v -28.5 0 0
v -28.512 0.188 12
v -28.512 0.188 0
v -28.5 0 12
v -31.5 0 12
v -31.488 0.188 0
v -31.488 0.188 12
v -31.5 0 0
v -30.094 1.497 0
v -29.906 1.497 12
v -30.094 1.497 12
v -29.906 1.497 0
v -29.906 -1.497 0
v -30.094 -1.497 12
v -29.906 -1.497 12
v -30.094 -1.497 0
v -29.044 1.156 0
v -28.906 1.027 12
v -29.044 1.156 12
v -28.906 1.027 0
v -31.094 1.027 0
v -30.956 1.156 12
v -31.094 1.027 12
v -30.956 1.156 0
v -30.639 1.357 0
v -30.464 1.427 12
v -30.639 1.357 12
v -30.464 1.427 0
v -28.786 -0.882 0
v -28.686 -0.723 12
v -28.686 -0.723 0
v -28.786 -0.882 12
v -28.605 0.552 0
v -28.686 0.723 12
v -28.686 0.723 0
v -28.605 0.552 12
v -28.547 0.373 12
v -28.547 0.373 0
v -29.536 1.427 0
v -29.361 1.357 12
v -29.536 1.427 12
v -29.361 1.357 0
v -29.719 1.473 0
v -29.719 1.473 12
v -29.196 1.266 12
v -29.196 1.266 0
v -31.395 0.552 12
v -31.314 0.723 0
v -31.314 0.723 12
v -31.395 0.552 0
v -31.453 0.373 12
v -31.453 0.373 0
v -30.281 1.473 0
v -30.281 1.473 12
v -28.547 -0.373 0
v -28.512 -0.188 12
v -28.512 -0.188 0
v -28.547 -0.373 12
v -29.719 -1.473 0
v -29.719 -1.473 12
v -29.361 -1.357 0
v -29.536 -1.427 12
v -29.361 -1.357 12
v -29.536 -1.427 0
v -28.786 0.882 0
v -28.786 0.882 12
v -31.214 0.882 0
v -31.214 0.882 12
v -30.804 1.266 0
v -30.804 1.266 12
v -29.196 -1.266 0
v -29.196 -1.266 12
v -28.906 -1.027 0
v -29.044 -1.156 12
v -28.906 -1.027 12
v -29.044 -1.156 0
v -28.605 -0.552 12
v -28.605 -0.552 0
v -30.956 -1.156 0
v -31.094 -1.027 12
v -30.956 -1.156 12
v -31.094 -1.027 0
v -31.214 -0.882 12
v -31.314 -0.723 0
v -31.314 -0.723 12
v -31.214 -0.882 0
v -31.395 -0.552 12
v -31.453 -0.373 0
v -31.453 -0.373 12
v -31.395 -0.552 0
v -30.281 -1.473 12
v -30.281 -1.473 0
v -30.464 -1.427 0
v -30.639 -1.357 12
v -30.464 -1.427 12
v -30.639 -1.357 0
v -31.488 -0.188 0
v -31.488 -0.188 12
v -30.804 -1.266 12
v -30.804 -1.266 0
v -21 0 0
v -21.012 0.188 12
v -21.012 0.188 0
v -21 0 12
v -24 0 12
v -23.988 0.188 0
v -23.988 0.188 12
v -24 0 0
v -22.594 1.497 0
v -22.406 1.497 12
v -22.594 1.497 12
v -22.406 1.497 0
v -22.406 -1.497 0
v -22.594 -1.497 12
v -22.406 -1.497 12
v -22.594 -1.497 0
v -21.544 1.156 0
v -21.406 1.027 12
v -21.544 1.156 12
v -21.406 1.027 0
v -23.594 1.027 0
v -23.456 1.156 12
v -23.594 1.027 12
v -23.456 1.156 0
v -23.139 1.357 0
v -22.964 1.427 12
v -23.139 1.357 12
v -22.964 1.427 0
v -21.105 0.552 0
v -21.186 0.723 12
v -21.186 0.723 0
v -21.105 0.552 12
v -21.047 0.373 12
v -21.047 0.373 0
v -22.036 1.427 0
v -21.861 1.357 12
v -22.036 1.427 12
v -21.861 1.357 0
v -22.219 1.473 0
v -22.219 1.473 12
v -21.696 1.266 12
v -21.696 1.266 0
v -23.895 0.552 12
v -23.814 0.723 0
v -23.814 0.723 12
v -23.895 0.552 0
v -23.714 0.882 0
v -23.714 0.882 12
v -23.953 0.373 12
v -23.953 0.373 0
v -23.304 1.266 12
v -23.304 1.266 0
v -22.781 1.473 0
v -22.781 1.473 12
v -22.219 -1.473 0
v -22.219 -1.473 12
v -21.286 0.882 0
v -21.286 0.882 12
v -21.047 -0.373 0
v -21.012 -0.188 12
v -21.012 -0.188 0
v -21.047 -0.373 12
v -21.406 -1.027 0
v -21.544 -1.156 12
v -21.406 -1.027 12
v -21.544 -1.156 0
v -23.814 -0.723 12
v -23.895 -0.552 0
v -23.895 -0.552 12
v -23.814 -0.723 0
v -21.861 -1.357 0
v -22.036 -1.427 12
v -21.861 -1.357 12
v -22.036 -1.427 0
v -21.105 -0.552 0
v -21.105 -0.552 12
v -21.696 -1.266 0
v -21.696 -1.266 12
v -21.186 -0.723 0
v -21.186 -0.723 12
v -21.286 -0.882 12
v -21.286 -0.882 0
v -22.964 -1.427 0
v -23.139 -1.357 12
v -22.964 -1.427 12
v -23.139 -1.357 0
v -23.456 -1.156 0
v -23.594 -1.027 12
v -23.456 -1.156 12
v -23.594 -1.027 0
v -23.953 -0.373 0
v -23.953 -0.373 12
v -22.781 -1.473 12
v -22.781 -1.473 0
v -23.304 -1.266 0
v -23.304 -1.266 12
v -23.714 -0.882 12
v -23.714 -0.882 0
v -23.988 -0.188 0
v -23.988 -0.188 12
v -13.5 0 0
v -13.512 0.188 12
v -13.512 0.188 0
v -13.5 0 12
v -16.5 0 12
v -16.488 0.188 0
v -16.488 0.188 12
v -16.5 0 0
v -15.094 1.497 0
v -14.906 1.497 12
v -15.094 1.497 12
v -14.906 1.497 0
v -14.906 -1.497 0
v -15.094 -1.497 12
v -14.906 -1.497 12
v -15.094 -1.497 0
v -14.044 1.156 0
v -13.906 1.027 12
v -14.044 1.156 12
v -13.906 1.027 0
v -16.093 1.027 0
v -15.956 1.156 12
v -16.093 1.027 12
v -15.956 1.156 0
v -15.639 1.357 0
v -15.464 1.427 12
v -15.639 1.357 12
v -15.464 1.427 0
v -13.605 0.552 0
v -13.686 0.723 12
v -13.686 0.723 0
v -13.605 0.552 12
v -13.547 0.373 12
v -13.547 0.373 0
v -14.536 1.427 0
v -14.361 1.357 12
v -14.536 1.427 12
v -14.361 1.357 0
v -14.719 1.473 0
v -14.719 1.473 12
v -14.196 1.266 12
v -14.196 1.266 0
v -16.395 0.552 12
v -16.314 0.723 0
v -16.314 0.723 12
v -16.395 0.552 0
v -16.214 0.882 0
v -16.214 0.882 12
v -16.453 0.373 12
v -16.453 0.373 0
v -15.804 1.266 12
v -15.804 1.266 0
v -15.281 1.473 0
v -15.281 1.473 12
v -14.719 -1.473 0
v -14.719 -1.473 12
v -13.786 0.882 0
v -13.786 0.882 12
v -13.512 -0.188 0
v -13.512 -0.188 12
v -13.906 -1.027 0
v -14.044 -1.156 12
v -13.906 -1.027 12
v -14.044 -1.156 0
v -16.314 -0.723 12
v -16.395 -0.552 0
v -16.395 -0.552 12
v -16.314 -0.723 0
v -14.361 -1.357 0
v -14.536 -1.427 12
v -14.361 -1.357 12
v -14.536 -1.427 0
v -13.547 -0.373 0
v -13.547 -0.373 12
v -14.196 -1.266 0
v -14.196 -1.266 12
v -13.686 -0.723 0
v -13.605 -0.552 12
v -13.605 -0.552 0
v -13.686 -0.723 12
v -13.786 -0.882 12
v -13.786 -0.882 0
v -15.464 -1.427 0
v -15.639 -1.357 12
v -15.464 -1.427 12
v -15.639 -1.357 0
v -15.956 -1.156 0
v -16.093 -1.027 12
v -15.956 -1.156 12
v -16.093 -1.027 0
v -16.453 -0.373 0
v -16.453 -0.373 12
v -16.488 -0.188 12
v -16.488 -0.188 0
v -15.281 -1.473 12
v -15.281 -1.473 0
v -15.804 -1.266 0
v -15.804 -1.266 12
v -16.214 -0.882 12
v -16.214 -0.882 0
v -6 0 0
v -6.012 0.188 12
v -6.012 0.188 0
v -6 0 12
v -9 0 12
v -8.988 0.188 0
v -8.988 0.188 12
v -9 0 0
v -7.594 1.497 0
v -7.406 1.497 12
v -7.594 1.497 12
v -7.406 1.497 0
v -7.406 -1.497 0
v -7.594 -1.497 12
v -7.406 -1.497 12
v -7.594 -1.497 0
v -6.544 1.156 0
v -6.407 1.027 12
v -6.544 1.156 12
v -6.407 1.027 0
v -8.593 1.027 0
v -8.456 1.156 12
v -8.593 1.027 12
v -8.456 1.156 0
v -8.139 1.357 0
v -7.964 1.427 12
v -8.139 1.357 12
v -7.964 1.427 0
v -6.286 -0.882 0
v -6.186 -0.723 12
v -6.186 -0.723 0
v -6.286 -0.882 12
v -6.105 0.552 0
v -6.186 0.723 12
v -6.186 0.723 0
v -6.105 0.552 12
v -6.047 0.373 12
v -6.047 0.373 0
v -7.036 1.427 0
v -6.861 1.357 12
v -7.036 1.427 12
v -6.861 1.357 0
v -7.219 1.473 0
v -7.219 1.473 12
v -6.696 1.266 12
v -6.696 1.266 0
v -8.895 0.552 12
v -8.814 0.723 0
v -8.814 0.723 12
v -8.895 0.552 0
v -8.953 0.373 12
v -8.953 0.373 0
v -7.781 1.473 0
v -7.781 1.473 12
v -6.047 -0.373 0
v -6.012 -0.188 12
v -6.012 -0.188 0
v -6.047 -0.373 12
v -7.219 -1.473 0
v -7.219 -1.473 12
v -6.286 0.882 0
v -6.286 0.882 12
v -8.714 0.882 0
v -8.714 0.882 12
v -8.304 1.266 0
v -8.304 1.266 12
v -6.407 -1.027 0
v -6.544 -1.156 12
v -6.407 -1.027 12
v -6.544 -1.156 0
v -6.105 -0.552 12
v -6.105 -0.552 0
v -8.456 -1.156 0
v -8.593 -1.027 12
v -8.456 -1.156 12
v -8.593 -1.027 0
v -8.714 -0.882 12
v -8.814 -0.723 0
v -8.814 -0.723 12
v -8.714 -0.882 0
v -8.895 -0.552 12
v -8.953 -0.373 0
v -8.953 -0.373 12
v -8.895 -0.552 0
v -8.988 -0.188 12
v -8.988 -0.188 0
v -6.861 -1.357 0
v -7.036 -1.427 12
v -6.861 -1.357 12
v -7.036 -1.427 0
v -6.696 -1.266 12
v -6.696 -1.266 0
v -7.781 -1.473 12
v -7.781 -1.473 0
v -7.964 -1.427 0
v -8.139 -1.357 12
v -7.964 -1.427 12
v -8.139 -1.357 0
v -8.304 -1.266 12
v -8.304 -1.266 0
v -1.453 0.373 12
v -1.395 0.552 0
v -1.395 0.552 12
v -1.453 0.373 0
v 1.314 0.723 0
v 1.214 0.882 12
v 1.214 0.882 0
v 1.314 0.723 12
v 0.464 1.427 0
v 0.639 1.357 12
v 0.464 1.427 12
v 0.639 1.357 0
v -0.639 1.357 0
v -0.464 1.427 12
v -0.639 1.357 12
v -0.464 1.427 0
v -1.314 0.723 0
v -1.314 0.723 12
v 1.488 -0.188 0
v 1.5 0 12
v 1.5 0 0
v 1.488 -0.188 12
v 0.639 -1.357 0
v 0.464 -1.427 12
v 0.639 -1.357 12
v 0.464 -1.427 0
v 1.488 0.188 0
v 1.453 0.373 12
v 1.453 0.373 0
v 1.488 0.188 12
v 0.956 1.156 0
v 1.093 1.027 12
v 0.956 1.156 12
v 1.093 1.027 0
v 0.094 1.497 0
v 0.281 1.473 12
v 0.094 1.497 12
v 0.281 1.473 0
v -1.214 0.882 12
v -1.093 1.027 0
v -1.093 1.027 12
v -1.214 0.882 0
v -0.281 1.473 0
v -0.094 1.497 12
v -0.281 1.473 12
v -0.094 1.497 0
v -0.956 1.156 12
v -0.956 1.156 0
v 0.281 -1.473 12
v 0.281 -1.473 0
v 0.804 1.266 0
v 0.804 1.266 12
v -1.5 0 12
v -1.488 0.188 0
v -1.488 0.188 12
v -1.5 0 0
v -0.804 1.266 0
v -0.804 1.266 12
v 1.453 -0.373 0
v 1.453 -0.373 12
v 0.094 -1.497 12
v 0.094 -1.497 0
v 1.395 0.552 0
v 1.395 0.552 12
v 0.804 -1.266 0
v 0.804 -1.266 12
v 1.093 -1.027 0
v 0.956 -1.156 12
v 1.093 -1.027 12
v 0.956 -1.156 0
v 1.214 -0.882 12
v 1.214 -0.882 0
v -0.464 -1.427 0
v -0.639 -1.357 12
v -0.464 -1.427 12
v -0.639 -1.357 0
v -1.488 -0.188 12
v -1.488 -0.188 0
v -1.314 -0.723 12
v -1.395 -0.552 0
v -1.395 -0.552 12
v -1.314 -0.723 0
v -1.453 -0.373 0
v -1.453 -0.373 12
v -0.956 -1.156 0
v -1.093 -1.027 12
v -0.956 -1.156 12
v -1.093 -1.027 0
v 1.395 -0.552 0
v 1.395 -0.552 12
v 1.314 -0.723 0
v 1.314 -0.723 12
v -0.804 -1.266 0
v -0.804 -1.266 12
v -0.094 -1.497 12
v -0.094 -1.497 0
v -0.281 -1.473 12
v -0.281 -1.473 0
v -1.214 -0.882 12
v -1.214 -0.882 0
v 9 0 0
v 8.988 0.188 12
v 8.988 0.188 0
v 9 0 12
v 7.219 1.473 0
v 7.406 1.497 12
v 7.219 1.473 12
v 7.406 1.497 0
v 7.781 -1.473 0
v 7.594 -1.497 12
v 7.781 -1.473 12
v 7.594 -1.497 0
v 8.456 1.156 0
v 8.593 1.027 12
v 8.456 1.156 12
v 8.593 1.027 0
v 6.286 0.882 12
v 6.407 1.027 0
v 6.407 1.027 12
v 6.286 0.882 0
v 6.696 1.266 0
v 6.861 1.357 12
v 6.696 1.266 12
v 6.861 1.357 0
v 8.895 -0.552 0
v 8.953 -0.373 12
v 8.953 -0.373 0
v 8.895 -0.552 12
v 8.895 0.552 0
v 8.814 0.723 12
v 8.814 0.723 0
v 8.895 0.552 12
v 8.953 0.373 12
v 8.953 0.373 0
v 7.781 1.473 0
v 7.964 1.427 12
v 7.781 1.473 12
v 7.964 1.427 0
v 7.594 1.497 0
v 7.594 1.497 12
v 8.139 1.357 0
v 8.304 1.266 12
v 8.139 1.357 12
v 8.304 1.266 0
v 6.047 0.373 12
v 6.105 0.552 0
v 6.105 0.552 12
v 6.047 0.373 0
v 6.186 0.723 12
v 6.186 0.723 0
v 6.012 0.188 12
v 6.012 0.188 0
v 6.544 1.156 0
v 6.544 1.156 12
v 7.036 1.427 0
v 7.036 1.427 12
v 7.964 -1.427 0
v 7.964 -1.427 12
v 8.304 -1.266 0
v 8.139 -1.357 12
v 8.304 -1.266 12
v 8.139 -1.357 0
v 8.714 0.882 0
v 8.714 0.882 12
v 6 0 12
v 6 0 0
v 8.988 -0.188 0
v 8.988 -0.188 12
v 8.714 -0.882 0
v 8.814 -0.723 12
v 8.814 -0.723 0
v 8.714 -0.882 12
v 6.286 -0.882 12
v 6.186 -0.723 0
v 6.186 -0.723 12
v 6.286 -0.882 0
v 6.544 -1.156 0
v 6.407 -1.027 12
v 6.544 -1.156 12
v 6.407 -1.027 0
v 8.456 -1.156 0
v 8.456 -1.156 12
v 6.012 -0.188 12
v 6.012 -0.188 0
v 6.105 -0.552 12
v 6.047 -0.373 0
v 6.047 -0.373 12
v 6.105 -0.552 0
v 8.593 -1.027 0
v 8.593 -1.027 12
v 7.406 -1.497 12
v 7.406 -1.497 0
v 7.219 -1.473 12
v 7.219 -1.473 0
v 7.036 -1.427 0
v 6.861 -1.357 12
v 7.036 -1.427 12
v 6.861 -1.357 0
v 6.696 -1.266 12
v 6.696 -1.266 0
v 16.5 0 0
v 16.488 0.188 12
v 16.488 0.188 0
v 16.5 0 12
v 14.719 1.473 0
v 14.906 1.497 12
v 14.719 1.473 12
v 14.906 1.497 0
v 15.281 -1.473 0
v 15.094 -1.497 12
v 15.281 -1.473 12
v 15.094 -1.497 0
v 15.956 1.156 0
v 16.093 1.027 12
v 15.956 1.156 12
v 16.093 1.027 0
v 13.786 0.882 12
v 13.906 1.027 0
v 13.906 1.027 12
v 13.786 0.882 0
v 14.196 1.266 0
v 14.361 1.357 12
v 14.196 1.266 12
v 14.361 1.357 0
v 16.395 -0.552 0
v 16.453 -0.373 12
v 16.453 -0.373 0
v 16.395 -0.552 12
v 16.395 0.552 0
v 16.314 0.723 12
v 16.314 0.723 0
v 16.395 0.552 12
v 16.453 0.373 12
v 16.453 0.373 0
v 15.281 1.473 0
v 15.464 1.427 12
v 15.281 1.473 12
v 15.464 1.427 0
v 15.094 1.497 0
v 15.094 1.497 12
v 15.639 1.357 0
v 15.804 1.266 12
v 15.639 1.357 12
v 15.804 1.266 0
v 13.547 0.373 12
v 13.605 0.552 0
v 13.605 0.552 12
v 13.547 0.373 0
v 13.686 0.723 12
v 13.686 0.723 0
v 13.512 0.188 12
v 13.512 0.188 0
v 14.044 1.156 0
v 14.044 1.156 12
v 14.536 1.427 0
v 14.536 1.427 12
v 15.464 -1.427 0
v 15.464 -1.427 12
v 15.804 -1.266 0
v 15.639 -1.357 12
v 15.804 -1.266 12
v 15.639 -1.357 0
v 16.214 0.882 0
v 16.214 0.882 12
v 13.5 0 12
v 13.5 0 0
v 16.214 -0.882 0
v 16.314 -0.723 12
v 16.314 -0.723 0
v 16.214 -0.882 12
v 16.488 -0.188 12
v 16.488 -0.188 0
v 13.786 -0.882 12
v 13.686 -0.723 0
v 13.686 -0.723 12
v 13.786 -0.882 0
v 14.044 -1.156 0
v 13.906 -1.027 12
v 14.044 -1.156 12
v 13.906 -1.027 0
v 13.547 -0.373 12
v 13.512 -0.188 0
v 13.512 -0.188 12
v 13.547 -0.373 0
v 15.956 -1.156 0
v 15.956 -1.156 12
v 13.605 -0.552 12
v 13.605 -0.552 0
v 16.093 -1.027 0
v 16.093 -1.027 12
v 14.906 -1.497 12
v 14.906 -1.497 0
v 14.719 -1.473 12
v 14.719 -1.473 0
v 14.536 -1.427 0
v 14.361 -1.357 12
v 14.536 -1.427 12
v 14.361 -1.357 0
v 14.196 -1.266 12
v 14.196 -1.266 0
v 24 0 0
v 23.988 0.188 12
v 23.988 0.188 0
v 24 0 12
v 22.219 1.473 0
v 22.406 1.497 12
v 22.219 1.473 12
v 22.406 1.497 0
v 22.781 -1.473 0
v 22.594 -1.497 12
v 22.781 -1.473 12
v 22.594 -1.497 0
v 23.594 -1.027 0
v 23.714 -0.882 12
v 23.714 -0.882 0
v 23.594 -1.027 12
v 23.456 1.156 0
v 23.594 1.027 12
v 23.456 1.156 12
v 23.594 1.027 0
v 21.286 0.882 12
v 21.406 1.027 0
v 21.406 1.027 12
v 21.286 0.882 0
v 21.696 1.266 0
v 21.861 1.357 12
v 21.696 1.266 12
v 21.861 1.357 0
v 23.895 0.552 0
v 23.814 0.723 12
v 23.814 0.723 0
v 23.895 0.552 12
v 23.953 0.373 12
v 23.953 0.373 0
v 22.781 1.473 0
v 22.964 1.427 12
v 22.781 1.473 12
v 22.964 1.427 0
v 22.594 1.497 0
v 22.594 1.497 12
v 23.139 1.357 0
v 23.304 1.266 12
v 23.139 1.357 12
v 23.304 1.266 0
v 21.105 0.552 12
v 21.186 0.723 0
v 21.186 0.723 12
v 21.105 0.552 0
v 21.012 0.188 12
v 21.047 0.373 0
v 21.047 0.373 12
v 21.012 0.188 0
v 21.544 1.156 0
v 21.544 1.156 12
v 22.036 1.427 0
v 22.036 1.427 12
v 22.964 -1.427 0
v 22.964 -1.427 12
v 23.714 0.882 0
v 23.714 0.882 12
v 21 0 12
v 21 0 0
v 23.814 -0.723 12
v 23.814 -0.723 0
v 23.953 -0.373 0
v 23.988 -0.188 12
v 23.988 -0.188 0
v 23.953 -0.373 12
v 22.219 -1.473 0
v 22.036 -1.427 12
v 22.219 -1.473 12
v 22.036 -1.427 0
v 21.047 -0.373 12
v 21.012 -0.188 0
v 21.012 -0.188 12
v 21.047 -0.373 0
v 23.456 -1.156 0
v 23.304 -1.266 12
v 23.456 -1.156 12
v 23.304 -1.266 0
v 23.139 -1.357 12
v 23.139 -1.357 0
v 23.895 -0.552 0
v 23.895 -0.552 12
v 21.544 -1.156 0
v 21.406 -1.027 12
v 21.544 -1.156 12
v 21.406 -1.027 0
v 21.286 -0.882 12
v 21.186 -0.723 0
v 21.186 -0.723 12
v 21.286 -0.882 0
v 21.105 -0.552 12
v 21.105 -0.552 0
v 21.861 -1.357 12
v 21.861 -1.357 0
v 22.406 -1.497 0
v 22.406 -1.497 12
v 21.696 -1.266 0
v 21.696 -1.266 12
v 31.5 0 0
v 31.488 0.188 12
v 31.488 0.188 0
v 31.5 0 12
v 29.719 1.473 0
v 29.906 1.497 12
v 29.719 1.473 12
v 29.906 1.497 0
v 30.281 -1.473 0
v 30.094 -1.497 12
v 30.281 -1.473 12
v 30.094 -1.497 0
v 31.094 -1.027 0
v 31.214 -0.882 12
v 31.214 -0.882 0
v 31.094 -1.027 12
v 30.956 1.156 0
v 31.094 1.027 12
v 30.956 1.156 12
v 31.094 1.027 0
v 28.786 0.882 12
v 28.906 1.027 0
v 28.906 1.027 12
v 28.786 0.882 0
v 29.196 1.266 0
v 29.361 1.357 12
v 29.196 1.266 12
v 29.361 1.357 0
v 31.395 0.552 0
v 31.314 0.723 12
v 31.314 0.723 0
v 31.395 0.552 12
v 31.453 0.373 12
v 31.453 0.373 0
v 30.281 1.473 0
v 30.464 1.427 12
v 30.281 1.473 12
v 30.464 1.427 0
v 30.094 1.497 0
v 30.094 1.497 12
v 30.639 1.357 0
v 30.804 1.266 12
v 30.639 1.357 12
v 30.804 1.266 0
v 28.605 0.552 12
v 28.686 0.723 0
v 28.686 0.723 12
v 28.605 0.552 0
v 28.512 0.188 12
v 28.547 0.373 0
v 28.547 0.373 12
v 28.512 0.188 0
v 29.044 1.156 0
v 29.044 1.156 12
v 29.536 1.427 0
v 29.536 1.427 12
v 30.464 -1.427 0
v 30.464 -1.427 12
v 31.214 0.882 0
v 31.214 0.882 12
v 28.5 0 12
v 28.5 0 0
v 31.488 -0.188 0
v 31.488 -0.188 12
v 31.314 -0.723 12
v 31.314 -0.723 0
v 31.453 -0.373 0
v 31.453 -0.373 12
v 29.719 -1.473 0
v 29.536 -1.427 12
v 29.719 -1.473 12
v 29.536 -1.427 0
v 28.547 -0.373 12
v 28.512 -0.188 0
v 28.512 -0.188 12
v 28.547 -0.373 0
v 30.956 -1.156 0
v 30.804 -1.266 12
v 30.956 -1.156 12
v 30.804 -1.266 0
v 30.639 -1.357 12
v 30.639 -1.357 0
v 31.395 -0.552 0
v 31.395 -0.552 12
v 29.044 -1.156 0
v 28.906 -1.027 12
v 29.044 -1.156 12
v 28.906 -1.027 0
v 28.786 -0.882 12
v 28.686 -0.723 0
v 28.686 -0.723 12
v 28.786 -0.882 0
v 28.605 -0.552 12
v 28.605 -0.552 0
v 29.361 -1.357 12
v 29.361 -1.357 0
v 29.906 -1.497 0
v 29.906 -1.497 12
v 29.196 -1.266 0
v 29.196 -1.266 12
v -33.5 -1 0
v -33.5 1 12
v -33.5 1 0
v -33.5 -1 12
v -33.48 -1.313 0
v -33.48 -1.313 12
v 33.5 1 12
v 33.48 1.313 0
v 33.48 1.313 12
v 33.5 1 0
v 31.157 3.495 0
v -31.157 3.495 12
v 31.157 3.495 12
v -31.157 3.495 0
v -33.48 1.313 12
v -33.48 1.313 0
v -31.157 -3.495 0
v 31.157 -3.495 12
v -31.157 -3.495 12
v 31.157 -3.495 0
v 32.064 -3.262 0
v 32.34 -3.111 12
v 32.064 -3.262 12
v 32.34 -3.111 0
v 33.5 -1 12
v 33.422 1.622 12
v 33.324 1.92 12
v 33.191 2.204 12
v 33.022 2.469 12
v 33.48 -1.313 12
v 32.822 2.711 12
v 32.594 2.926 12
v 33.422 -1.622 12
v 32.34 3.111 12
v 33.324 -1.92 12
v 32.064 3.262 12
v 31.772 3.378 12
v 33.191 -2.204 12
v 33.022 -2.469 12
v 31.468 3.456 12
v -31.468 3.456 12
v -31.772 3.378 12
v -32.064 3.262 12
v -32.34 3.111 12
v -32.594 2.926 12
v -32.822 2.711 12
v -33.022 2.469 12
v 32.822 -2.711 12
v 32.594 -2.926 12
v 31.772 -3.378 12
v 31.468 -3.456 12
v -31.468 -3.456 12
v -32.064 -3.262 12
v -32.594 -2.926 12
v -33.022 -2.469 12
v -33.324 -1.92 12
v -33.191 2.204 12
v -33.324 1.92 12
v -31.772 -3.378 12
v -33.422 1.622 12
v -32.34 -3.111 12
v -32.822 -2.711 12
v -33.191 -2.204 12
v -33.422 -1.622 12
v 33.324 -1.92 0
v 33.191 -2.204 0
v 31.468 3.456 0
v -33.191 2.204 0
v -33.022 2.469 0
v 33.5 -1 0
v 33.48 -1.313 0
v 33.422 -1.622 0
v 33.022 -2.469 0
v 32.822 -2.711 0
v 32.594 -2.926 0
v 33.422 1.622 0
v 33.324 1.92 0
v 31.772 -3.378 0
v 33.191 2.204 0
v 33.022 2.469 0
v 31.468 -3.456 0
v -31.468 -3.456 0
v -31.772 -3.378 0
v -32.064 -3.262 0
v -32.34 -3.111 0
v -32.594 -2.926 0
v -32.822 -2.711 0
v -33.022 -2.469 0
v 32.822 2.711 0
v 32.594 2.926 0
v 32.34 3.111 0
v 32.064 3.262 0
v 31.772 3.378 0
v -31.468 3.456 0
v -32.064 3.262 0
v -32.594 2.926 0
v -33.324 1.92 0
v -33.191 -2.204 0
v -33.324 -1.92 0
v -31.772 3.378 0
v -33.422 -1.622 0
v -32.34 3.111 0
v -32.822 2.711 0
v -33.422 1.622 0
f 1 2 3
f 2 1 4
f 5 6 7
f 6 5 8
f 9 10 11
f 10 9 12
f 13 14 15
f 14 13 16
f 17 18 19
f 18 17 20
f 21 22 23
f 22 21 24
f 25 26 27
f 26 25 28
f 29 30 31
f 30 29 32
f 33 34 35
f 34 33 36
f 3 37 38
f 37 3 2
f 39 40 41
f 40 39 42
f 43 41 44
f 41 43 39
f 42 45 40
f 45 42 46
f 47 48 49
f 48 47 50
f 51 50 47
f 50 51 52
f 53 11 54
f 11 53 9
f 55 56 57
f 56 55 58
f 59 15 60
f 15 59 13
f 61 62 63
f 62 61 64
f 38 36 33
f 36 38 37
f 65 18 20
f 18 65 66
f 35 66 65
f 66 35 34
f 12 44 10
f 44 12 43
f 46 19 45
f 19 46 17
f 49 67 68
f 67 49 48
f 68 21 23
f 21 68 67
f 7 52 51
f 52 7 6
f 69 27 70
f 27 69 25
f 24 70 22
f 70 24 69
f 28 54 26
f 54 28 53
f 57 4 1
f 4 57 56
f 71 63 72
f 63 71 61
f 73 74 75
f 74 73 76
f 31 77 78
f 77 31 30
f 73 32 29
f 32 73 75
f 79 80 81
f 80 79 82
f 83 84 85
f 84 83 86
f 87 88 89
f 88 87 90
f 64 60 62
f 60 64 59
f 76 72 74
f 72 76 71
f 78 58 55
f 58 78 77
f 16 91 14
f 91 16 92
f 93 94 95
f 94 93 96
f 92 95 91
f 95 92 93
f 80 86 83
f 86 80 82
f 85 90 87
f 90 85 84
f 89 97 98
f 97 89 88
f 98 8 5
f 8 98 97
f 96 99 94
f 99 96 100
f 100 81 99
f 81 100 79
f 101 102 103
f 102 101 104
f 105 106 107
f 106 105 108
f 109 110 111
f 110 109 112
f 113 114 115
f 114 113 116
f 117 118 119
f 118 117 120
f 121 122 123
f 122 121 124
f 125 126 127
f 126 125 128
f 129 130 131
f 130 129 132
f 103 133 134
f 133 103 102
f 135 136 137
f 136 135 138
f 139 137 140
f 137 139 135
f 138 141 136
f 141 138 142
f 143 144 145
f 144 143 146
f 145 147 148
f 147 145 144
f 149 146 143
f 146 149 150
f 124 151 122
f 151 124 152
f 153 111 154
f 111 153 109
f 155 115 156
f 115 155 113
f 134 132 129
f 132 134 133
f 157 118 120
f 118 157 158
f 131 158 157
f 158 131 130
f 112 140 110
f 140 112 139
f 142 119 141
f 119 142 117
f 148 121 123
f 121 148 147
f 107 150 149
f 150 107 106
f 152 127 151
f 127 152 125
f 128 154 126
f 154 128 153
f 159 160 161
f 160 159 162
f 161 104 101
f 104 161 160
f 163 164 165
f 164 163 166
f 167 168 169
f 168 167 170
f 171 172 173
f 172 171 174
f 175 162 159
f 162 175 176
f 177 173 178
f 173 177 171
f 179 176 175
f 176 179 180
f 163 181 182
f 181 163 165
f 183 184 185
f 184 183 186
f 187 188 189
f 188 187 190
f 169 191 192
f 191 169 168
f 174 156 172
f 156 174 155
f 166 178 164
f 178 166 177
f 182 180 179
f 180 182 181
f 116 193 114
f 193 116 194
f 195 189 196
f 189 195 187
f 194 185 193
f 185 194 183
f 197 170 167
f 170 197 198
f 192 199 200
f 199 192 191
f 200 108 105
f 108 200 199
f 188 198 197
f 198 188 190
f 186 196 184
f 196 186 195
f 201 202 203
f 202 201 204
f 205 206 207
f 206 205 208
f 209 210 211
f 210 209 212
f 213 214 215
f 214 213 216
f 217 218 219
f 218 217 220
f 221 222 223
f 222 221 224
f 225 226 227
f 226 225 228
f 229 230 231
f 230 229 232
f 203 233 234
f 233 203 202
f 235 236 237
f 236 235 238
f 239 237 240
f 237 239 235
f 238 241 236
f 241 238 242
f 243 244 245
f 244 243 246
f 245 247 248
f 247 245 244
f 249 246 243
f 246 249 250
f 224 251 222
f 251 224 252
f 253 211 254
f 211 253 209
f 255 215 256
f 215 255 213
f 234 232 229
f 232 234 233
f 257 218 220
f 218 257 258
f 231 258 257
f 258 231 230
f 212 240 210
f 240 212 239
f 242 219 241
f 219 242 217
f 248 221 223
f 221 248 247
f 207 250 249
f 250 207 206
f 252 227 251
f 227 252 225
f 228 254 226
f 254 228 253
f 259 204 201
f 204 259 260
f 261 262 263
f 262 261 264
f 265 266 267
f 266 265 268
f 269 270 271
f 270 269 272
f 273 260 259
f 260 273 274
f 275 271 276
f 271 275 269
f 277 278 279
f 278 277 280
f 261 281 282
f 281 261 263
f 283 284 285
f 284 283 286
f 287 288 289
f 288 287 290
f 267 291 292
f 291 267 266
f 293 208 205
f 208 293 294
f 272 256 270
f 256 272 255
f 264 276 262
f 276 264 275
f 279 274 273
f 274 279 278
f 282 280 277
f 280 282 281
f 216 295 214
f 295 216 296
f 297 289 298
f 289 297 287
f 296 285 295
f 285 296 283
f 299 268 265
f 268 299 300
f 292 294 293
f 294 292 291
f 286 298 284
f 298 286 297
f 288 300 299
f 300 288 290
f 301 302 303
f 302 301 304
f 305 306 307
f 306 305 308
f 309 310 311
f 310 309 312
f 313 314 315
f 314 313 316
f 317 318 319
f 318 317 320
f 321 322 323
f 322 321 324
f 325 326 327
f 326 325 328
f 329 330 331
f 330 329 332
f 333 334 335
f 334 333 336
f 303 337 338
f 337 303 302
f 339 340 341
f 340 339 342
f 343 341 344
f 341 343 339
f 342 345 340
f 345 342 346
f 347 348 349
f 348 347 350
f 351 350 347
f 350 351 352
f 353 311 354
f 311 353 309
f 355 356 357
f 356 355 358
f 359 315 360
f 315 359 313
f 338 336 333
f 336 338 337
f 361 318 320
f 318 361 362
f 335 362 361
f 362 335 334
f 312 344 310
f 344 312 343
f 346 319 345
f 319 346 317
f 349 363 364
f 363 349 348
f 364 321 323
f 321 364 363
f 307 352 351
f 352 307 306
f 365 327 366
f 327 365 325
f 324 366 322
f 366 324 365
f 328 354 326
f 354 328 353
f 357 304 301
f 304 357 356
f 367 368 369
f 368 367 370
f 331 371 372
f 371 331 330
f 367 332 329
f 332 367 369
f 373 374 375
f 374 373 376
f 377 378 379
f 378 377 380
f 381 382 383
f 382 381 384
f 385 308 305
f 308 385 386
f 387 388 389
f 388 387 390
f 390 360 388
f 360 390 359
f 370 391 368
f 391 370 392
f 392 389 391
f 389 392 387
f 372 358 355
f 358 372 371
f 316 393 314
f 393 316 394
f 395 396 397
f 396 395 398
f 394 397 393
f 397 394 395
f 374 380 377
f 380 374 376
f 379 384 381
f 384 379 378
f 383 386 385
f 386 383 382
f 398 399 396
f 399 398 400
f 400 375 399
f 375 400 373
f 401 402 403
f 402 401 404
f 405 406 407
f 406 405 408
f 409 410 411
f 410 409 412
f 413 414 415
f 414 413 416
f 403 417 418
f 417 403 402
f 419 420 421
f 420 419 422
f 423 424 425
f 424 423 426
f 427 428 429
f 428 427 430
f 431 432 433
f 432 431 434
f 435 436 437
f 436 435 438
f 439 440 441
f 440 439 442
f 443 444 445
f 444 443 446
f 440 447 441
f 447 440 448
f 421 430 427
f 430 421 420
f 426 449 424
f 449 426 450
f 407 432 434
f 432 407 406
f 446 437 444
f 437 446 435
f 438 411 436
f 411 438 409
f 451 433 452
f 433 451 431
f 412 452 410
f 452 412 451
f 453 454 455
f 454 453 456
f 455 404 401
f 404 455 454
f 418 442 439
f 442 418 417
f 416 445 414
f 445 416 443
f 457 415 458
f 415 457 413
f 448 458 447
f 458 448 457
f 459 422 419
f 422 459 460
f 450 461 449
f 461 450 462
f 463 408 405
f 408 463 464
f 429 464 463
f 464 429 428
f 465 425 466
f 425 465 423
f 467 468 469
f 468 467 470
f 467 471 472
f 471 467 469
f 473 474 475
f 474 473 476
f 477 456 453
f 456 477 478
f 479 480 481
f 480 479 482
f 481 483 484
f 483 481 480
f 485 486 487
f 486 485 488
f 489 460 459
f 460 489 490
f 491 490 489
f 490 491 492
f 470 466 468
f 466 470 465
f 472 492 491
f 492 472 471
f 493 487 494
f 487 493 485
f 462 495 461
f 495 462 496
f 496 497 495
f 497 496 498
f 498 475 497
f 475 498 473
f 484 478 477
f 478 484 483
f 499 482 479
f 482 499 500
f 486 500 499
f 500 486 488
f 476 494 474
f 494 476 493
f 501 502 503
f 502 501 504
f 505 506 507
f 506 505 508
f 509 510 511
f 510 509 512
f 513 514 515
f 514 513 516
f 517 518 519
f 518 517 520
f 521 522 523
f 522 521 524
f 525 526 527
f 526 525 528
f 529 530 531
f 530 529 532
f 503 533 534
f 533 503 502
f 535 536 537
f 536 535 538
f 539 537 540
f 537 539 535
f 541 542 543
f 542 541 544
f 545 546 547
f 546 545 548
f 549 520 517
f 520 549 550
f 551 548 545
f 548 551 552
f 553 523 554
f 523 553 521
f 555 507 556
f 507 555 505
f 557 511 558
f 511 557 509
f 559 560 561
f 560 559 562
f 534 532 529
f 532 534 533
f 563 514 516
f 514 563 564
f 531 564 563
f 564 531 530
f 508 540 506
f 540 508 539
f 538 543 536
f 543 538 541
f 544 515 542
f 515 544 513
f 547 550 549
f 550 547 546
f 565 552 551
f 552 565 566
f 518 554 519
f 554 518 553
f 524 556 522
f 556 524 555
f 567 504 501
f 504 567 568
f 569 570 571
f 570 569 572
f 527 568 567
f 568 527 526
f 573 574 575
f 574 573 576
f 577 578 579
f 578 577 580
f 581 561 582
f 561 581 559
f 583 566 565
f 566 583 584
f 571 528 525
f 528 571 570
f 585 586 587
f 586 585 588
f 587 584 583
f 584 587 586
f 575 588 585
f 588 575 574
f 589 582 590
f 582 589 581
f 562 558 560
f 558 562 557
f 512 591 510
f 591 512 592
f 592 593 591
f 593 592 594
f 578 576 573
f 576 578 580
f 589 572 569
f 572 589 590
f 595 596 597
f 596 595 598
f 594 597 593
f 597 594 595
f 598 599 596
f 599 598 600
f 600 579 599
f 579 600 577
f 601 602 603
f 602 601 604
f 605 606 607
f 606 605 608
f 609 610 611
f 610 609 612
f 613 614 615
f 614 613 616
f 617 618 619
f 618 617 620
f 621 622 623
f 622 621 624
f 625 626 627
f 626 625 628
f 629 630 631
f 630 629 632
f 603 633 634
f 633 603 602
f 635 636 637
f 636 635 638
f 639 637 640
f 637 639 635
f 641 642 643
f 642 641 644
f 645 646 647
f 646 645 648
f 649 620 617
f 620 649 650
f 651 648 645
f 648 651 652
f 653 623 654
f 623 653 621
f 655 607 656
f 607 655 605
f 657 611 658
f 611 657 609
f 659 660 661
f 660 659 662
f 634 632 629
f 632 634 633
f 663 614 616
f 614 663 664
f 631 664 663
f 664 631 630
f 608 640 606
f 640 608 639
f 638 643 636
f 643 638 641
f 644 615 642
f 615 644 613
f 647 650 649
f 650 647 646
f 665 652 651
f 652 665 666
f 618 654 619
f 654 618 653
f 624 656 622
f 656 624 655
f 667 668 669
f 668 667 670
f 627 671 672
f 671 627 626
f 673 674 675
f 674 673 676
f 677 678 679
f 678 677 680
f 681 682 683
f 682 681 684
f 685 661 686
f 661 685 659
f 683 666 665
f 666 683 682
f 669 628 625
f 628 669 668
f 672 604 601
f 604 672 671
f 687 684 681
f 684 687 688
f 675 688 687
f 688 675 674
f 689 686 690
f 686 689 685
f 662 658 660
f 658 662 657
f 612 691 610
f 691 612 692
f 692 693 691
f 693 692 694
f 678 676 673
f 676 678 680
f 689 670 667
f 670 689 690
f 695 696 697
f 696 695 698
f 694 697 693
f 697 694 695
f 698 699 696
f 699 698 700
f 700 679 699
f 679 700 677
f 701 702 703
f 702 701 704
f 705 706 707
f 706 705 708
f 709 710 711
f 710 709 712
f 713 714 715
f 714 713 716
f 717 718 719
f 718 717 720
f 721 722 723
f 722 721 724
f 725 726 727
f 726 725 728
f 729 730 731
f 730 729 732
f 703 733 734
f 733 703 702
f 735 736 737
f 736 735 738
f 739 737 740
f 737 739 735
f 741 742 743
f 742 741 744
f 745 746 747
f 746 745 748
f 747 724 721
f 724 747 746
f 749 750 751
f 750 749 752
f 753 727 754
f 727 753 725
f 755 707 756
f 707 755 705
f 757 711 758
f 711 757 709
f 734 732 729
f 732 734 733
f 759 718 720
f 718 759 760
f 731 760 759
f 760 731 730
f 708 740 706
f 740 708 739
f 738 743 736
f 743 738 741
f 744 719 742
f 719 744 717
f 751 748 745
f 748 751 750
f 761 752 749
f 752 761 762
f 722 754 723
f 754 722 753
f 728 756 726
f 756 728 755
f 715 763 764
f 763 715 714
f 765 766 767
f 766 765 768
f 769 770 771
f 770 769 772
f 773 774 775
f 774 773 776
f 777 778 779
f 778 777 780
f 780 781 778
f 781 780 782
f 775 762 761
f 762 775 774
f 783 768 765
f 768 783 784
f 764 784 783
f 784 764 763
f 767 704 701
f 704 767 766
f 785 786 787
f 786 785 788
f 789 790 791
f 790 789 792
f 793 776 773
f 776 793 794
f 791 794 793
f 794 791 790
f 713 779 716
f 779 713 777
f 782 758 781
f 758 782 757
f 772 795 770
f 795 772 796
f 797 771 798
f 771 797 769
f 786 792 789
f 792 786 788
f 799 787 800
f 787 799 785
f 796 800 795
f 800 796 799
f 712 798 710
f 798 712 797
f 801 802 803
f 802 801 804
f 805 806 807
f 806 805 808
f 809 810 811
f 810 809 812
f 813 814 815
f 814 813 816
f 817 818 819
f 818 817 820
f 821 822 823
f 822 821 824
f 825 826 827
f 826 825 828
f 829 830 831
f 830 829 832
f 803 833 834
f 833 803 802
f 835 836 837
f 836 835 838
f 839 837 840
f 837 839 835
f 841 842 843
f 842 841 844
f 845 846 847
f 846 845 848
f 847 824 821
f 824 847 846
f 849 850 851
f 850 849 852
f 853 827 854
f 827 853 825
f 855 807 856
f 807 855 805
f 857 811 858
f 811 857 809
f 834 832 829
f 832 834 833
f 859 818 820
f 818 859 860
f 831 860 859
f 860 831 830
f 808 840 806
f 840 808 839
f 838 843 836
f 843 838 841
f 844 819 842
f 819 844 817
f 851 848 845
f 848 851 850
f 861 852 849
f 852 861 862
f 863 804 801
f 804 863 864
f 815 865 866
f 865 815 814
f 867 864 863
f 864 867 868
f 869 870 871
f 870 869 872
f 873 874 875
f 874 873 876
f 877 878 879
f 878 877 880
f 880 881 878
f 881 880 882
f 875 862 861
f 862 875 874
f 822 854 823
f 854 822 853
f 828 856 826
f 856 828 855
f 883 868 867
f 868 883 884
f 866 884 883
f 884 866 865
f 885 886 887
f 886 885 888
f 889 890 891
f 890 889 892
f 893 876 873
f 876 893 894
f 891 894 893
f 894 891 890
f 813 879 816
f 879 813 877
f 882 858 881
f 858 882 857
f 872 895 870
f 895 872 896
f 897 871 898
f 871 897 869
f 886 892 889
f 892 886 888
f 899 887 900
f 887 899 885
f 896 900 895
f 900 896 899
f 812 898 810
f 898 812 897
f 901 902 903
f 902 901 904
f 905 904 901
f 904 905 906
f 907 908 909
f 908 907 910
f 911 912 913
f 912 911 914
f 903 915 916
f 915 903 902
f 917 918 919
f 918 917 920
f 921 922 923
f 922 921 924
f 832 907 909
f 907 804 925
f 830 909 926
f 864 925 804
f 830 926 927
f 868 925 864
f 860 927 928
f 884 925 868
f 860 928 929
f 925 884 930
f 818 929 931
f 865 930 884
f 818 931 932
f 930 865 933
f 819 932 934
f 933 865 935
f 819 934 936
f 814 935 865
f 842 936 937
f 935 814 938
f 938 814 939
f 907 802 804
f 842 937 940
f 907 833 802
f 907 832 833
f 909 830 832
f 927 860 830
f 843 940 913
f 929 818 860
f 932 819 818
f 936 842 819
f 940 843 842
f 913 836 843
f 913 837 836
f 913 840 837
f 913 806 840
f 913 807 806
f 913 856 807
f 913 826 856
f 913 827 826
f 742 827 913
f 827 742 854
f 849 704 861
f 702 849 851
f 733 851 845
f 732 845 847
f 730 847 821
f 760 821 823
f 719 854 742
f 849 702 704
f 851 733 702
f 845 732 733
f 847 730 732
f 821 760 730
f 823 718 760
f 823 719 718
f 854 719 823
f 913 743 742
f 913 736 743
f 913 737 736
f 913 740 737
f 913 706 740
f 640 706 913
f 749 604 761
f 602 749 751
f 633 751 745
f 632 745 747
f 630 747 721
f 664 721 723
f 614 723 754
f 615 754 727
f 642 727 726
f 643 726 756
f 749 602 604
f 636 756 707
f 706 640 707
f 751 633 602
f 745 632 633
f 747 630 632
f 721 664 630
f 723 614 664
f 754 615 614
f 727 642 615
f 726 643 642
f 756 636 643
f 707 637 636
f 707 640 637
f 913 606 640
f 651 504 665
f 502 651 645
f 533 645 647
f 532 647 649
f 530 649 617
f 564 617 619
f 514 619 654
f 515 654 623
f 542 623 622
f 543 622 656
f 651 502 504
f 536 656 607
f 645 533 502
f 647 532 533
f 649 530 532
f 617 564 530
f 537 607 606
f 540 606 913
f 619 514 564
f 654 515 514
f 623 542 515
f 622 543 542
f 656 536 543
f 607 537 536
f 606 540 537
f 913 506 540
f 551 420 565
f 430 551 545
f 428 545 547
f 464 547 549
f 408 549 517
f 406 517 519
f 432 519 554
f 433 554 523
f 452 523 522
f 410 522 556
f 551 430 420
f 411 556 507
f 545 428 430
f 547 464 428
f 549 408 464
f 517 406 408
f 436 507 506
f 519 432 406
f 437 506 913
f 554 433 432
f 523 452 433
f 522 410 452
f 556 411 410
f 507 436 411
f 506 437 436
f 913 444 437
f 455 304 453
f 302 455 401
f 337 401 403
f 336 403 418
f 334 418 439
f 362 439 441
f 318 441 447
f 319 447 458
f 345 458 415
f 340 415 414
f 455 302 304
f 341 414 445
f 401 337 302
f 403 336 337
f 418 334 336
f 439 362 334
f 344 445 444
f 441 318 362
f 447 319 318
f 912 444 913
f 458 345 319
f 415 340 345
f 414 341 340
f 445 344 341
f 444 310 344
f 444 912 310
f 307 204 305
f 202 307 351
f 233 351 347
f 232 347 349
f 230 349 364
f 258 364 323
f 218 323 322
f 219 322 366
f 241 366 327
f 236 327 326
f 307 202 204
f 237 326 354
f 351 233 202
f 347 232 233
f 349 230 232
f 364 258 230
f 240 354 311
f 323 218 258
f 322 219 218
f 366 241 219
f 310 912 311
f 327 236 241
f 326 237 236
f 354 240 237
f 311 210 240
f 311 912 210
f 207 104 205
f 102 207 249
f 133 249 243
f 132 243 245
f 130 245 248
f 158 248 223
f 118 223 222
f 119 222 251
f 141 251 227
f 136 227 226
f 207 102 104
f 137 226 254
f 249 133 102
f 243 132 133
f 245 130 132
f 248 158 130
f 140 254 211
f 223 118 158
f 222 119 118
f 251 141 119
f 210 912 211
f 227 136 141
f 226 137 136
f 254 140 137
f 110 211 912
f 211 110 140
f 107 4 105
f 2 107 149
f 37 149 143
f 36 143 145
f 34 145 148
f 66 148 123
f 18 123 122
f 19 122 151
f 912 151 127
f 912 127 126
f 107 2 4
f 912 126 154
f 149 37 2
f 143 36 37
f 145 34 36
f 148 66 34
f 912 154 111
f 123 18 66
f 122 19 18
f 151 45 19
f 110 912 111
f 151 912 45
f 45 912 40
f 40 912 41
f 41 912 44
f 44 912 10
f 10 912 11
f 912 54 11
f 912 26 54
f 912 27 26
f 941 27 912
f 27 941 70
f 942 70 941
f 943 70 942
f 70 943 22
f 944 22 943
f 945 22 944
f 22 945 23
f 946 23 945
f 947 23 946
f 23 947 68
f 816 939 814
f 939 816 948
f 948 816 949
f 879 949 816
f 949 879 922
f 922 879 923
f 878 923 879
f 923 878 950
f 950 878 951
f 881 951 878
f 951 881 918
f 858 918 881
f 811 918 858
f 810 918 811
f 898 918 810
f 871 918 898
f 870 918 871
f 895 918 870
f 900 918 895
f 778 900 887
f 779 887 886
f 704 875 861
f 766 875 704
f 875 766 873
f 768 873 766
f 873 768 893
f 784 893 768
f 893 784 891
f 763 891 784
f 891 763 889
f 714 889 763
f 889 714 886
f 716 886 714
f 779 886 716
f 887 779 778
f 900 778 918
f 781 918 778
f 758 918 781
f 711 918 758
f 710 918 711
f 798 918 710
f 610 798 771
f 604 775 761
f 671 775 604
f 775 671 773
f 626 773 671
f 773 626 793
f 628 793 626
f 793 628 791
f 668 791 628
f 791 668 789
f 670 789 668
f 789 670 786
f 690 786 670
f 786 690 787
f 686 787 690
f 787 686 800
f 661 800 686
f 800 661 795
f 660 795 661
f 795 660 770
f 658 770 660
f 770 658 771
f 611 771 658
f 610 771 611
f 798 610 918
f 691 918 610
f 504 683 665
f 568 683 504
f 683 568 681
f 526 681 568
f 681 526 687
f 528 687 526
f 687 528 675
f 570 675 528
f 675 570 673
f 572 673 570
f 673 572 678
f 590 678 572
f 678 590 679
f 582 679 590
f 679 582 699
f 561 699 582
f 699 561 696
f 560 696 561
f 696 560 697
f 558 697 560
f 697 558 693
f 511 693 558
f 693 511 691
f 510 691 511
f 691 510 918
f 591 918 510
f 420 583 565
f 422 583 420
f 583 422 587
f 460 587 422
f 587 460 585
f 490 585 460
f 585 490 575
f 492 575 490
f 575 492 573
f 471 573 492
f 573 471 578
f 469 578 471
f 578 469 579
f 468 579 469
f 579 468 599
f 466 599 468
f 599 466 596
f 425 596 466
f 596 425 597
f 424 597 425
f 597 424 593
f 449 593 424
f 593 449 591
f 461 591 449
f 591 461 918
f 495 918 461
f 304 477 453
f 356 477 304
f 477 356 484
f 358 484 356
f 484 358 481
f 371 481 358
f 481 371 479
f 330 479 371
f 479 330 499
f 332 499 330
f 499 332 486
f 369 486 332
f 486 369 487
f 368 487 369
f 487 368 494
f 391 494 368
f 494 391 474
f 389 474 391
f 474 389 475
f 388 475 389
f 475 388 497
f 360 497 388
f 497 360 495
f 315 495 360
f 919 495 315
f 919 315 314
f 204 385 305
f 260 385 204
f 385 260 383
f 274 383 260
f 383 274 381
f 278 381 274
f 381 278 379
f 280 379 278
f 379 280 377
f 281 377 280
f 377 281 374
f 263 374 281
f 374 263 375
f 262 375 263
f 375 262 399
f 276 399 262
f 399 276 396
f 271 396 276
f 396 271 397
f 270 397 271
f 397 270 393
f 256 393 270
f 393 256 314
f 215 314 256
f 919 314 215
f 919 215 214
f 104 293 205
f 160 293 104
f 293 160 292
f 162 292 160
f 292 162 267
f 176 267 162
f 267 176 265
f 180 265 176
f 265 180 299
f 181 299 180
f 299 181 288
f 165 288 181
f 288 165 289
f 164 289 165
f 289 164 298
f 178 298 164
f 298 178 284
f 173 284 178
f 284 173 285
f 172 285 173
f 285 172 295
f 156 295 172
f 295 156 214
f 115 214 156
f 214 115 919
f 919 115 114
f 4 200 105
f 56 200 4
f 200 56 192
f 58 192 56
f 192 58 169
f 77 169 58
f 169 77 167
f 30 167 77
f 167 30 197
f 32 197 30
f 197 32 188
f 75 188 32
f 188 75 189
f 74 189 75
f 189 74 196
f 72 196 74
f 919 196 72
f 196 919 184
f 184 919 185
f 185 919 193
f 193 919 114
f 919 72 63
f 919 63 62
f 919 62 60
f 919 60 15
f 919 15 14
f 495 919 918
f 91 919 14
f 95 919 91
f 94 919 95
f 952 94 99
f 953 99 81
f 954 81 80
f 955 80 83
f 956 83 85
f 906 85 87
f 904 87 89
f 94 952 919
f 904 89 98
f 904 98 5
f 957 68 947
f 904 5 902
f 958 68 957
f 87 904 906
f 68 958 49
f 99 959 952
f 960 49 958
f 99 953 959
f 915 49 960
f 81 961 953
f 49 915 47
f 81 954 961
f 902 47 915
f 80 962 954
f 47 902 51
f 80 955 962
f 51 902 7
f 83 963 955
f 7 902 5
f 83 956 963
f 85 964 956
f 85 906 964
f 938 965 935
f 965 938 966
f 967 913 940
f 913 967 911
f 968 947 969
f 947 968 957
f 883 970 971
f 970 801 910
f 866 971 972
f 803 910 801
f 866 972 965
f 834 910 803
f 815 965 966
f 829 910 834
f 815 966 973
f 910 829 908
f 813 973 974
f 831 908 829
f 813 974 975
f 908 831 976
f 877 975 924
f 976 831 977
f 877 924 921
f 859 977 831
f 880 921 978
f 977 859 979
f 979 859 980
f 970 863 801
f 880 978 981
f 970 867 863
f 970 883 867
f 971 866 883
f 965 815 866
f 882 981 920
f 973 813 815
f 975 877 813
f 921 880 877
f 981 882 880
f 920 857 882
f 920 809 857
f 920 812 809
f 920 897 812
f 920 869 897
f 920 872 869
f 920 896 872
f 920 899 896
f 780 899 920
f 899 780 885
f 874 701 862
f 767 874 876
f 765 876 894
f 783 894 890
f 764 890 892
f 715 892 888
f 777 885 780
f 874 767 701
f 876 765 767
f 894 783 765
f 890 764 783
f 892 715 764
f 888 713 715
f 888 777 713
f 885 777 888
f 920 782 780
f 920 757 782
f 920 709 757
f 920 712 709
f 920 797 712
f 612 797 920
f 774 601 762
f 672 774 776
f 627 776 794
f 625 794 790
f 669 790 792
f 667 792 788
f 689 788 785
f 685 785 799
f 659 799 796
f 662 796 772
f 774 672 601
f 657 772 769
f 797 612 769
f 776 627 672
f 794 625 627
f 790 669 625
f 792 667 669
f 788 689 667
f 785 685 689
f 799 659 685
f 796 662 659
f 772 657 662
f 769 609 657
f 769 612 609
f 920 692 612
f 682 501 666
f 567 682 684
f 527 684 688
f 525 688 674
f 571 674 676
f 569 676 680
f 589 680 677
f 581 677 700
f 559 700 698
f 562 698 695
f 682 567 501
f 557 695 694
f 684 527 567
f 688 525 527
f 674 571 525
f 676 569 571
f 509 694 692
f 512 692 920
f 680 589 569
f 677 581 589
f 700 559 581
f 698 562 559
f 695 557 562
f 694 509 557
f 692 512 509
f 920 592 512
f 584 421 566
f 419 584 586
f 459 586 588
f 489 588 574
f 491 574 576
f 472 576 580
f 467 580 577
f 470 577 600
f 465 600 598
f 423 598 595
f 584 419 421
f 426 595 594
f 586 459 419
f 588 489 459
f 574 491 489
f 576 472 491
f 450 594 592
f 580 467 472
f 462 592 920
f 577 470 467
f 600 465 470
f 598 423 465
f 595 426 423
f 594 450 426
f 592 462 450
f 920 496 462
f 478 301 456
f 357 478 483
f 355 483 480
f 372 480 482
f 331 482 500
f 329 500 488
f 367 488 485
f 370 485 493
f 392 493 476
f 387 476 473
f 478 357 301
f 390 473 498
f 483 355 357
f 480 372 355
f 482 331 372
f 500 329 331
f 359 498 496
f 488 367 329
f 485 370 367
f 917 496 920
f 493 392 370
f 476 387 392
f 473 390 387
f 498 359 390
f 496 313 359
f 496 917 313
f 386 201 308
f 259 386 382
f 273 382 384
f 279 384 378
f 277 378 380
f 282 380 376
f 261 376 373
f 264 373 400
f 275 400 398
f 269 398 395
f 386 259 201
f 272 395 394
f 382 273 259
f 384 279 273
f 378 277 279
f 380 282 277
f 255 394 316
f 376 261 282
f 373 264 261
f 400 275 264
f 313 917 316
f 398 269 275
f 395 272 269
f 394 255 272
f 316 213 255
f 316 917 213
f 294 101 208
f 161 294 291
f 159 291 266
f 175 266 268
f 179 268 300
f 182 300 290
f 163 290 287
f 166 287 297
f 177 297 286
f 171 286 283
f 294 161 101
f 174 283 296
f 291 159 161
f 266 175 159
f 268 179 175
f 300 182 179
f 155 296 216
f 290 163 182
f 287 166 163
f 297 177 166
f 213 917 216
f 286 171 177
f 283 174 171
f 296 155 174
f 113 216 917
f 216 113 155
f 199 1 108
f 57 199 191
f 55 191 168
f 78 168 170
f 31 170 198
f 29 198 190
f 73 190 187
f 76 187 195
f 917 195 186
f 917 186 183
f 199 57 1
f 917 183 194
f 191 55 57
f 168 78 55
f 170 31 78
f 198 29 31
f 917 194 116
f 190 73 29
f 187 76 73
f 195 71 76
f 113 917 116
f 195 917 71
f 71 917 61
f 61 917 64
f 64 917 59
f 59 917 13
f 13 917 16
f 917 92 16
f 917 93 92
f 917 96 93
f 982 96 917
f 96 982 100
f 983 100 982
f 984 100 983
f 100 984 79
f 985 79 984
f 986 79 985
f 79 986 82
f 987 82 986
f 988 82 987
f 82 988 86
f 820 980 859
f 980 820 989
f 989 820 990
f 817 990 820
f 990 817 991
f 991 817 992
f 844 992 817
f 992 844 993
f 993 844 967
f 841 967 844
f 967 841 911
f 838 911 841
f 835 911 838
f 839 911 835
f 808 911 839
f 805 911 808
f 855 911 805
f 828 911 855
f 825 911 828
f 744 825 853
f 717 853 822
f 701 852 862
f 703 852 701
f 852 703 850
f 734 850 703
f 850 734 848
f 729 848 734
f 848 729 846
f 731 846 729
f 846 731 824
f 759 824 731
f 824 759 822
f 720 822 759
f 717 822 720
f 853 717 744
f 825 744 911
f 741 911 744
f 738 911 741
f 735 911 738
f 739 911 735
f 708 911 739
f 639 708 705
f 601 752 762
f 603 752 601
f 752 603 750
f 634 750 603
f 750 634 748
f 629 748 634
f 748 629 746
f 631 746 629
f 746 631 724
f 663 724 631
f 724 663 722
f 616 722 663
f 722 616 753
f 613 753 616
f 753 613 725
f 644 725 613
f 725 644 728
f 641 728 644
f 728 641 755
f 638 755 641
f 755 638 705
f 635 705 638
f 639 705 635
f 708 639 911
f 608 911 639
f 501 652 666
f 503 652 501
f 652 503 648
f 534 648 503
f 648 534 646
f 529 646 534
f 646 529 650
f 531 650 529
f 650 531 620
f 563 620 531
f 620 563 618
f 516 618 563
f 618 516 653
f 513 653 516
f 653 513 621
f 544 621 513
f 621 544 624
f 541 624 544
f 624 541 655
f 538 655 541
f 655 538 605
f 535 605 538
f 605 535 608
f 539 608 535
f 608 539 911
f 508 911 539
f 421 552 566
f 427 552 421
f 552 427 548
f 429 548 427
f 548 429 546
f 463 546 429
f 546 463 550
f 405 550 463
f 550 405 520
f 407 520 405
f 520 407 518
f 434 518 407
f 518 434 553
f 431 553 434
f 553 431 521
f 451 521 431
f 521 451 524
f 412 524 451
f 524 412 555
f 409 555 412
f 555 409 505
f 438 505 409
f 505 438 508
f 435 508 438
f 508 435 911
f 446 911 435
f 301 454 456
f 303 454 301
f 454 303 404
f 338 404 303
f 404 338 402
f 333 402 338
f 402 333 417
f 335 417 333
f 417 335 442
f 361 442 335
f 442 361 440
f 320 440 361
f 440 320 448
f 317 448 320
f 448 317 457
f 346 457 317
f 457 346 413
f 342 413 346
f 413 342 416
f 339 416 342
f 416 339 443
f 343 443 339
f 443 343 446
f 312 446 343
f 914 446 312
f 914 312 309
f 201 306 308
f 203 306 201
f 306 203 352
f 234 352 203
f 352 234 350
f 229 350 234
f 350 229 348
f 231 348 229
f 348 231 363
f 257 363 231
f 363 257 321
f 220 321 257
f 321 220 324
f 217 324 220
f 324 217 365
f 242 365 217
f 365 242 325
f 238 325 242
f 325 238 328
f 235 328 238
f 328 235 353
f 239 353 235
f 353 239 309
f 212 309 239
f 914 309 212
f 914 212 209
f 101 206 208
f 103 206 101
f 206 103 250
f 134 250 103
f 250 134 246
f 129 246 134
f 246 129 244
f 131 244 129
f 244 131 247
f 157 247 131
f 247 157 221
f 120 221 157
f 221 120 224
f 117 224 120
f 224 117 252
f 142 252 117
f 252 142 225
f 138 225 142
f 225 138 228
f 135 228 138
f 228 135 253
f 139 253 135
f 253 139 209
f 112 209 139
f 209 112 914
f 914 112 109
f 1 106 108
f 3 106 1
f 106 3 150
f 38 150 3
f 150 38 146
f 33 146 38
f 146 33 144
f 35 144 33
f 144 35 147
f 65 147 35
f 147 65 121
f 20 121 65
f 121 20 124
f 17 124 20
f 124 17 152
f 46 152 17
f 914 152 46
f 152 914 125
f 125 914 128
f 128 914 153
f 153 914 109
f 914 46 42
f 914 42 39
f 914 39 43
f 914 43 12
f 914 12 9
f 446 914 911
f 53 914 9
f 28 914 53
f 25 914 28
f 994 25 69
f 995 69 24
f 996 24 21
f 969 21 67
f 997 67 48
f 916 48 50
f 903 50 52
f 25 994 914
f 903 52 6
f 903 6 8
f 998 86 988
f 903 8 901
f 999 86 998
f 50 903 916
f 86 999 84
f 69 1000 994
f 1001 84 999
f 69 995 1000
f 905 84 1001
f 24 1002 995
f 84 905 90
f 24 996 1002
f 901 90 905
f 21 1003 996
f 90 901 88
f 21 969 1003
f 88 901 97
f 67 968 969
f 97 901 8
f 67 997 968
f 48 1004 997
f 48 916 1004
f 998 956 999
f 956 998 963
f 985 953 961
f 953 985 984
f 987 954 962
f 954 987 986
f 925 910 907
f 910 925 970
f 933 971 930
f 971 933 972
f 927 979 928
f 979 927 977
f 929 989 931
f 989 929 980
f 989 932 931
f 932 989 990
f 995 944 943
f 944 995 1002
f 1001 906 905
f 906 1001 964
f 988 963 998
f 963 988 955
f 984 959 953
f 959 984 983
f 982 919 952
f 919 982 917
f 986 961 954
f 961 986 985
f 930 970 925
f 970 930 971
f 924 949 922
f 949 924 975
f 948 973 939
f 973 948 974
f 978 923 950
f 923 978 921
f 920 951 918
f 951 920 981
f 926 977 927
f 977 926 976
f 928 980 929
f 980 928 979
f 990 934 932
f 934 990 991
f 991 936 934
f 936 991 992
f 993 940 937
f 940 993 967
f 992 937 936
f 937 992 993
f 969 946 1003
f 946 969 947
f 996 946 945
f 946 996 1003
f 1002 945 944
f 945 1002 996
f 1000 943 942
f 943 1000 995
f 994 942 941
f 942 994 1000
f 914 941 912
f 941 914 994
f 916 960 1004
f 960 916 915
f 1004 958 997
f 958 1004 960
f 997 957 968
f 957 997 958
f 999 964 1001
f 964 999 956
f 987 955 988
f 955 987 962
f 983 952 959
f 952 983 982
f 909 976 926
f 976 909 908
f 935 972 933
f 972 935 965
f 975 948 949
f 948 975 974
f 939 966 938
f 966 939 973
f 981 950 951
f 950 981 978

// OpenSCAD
$fn = 50;


difference() {
	union() {
		translate(v = [0, 0, 0]) {
			rotate(a = [0, 0, 0]) {
				hull() {
					translate(v = [-31.0000000000, 1.0000000000, 0]) {
						rotate(a = [0, 0, 0]) {
							translate(v = [0, 0, 0]) {
								rotate(a = [0, 0, 0]) {
									cylinder(h = 12, r = 2.5000000000);
								}
							}
						}
					}
					translate(v = [31.0000000000, 1.0000000000, 0]) {
						rotate(a = [0, 0, 0]) {
							translate(v = [0, 0, 0]) {
								rotate(a = [0, 0, 0]) {
									cylinder(h = 12, r = 2.5000000000);
								}
							}
						}
					}
					translate(v = [-31.0000000000, -1.0000000000, 0]) {
						rotate(a = [0, 0, 0]) {
							translate(v = [0, 0, 0]) {
								rotate(a = [0, 0, 0]) {
									cylinder(h = 12, r = 2.5000000000);
								}
							}
						}
					}
					translate(v = [31.0000000000, -1.0000000000, 0]) {
						rotate(a = [0, 0, 0]) {
							translate(v = [0, 0, 0]) {
								rotate(a = [0, 0, 0]) {
									cylinder(h = 12, r = 2.5000000000);
								}
							}
						}
					}
				}
			}
		}
	}
	union() {
		translate(v = [-30.0000000000, 0.0000000000, 0]) {
			rotate(a = [0, 0, 0]) {
				translate(v = [0, 0, -50]) {
					rotate(a = [0, 0, 0]) {
						cylinder(h = 100, r = 1.5000000000);
					}
				}
			}
		}
		translate(v = [-22.5000000000, 0.0000000000, 0]) {
			rotate(a = [0, 0, 0]) {
				translate(v = [0, 0, -50]) {
					rotate(a = [0, 0, 0]) {
						cylinder(h = 100, r = 1.5000000000);
					}
				}
			}
		}
		translate(v = [-15.0000000000, 0.0000000000, 0]) {
			rotate(a = [0, 0, 0]) {
				translate(v = [0, 0, -50]) {
					rotate(a = [0, 0, 0]) {
						cylinder(h = 100, r = 1.5000000000);
					}
				}
			}
		}
		translate(v = [-7.5000000000, 0.0000000000, 0]) {
			rotate(a = [0, 0, 0]) {
				translate(v = [0, 0, -50]) {
					rotate(a = [0, 0, 0]) {
						cylinder(h = 100, r = 1.5000000000);
					}
				}
			}
		}
		translate(v = [0.0000000000, 0.0000000000, 0]) {
			rotate(a = [0, 0, 0]) {
				translate(v = [0, 0, -50]) {
					rotate(a = [0, 0, 0]) {
						cylinder(h = 100, r = 1.5000000000);
					}
				}
			}
		}
		translate(v = [7.5000000000, 0.0000000000, 0]) {
			rotate(a = [0, 0, 0]) {
				translate(v = [0, 0, -50]) {
					rotate(a = [0, 0, 0]) {
						cylinder(h = 100, r = 1.5000000000);
					}
				}
			}
		}
		translate(v = [15.0000000000, 0.0000000000, 0]) {
			rotate(a = [0, 0, 0]) {
				translate(v = [0, 0, -50]) {
					rotate(a = [0, 0, 0]) {
						cylinder(h = 100, r = 1.5000000000);
					}
				}
			}
		}
		translate(v = [22.5000000000, 0.0000000000, 0]) {
			rotate(a = [0, 0, 0]) {
				translate(v = [0, 0, -50]) {
					rotate(a = [0, 0, 0]) {
						cylinder(h = 100, r = 1.5000000000);
					}
				}
			}
		}
		translate(v = [30.0000000000, 0.0000000000, 0]) {
			rotate(a = [0, 0, 0]) {
				translate(v = [0, 0, -50]) {
					rotate(a = [0, 0, 0]) {
						cylinder(h = 100, r = 1.5000000000);
					}
				}
			}
		}
	}
}
